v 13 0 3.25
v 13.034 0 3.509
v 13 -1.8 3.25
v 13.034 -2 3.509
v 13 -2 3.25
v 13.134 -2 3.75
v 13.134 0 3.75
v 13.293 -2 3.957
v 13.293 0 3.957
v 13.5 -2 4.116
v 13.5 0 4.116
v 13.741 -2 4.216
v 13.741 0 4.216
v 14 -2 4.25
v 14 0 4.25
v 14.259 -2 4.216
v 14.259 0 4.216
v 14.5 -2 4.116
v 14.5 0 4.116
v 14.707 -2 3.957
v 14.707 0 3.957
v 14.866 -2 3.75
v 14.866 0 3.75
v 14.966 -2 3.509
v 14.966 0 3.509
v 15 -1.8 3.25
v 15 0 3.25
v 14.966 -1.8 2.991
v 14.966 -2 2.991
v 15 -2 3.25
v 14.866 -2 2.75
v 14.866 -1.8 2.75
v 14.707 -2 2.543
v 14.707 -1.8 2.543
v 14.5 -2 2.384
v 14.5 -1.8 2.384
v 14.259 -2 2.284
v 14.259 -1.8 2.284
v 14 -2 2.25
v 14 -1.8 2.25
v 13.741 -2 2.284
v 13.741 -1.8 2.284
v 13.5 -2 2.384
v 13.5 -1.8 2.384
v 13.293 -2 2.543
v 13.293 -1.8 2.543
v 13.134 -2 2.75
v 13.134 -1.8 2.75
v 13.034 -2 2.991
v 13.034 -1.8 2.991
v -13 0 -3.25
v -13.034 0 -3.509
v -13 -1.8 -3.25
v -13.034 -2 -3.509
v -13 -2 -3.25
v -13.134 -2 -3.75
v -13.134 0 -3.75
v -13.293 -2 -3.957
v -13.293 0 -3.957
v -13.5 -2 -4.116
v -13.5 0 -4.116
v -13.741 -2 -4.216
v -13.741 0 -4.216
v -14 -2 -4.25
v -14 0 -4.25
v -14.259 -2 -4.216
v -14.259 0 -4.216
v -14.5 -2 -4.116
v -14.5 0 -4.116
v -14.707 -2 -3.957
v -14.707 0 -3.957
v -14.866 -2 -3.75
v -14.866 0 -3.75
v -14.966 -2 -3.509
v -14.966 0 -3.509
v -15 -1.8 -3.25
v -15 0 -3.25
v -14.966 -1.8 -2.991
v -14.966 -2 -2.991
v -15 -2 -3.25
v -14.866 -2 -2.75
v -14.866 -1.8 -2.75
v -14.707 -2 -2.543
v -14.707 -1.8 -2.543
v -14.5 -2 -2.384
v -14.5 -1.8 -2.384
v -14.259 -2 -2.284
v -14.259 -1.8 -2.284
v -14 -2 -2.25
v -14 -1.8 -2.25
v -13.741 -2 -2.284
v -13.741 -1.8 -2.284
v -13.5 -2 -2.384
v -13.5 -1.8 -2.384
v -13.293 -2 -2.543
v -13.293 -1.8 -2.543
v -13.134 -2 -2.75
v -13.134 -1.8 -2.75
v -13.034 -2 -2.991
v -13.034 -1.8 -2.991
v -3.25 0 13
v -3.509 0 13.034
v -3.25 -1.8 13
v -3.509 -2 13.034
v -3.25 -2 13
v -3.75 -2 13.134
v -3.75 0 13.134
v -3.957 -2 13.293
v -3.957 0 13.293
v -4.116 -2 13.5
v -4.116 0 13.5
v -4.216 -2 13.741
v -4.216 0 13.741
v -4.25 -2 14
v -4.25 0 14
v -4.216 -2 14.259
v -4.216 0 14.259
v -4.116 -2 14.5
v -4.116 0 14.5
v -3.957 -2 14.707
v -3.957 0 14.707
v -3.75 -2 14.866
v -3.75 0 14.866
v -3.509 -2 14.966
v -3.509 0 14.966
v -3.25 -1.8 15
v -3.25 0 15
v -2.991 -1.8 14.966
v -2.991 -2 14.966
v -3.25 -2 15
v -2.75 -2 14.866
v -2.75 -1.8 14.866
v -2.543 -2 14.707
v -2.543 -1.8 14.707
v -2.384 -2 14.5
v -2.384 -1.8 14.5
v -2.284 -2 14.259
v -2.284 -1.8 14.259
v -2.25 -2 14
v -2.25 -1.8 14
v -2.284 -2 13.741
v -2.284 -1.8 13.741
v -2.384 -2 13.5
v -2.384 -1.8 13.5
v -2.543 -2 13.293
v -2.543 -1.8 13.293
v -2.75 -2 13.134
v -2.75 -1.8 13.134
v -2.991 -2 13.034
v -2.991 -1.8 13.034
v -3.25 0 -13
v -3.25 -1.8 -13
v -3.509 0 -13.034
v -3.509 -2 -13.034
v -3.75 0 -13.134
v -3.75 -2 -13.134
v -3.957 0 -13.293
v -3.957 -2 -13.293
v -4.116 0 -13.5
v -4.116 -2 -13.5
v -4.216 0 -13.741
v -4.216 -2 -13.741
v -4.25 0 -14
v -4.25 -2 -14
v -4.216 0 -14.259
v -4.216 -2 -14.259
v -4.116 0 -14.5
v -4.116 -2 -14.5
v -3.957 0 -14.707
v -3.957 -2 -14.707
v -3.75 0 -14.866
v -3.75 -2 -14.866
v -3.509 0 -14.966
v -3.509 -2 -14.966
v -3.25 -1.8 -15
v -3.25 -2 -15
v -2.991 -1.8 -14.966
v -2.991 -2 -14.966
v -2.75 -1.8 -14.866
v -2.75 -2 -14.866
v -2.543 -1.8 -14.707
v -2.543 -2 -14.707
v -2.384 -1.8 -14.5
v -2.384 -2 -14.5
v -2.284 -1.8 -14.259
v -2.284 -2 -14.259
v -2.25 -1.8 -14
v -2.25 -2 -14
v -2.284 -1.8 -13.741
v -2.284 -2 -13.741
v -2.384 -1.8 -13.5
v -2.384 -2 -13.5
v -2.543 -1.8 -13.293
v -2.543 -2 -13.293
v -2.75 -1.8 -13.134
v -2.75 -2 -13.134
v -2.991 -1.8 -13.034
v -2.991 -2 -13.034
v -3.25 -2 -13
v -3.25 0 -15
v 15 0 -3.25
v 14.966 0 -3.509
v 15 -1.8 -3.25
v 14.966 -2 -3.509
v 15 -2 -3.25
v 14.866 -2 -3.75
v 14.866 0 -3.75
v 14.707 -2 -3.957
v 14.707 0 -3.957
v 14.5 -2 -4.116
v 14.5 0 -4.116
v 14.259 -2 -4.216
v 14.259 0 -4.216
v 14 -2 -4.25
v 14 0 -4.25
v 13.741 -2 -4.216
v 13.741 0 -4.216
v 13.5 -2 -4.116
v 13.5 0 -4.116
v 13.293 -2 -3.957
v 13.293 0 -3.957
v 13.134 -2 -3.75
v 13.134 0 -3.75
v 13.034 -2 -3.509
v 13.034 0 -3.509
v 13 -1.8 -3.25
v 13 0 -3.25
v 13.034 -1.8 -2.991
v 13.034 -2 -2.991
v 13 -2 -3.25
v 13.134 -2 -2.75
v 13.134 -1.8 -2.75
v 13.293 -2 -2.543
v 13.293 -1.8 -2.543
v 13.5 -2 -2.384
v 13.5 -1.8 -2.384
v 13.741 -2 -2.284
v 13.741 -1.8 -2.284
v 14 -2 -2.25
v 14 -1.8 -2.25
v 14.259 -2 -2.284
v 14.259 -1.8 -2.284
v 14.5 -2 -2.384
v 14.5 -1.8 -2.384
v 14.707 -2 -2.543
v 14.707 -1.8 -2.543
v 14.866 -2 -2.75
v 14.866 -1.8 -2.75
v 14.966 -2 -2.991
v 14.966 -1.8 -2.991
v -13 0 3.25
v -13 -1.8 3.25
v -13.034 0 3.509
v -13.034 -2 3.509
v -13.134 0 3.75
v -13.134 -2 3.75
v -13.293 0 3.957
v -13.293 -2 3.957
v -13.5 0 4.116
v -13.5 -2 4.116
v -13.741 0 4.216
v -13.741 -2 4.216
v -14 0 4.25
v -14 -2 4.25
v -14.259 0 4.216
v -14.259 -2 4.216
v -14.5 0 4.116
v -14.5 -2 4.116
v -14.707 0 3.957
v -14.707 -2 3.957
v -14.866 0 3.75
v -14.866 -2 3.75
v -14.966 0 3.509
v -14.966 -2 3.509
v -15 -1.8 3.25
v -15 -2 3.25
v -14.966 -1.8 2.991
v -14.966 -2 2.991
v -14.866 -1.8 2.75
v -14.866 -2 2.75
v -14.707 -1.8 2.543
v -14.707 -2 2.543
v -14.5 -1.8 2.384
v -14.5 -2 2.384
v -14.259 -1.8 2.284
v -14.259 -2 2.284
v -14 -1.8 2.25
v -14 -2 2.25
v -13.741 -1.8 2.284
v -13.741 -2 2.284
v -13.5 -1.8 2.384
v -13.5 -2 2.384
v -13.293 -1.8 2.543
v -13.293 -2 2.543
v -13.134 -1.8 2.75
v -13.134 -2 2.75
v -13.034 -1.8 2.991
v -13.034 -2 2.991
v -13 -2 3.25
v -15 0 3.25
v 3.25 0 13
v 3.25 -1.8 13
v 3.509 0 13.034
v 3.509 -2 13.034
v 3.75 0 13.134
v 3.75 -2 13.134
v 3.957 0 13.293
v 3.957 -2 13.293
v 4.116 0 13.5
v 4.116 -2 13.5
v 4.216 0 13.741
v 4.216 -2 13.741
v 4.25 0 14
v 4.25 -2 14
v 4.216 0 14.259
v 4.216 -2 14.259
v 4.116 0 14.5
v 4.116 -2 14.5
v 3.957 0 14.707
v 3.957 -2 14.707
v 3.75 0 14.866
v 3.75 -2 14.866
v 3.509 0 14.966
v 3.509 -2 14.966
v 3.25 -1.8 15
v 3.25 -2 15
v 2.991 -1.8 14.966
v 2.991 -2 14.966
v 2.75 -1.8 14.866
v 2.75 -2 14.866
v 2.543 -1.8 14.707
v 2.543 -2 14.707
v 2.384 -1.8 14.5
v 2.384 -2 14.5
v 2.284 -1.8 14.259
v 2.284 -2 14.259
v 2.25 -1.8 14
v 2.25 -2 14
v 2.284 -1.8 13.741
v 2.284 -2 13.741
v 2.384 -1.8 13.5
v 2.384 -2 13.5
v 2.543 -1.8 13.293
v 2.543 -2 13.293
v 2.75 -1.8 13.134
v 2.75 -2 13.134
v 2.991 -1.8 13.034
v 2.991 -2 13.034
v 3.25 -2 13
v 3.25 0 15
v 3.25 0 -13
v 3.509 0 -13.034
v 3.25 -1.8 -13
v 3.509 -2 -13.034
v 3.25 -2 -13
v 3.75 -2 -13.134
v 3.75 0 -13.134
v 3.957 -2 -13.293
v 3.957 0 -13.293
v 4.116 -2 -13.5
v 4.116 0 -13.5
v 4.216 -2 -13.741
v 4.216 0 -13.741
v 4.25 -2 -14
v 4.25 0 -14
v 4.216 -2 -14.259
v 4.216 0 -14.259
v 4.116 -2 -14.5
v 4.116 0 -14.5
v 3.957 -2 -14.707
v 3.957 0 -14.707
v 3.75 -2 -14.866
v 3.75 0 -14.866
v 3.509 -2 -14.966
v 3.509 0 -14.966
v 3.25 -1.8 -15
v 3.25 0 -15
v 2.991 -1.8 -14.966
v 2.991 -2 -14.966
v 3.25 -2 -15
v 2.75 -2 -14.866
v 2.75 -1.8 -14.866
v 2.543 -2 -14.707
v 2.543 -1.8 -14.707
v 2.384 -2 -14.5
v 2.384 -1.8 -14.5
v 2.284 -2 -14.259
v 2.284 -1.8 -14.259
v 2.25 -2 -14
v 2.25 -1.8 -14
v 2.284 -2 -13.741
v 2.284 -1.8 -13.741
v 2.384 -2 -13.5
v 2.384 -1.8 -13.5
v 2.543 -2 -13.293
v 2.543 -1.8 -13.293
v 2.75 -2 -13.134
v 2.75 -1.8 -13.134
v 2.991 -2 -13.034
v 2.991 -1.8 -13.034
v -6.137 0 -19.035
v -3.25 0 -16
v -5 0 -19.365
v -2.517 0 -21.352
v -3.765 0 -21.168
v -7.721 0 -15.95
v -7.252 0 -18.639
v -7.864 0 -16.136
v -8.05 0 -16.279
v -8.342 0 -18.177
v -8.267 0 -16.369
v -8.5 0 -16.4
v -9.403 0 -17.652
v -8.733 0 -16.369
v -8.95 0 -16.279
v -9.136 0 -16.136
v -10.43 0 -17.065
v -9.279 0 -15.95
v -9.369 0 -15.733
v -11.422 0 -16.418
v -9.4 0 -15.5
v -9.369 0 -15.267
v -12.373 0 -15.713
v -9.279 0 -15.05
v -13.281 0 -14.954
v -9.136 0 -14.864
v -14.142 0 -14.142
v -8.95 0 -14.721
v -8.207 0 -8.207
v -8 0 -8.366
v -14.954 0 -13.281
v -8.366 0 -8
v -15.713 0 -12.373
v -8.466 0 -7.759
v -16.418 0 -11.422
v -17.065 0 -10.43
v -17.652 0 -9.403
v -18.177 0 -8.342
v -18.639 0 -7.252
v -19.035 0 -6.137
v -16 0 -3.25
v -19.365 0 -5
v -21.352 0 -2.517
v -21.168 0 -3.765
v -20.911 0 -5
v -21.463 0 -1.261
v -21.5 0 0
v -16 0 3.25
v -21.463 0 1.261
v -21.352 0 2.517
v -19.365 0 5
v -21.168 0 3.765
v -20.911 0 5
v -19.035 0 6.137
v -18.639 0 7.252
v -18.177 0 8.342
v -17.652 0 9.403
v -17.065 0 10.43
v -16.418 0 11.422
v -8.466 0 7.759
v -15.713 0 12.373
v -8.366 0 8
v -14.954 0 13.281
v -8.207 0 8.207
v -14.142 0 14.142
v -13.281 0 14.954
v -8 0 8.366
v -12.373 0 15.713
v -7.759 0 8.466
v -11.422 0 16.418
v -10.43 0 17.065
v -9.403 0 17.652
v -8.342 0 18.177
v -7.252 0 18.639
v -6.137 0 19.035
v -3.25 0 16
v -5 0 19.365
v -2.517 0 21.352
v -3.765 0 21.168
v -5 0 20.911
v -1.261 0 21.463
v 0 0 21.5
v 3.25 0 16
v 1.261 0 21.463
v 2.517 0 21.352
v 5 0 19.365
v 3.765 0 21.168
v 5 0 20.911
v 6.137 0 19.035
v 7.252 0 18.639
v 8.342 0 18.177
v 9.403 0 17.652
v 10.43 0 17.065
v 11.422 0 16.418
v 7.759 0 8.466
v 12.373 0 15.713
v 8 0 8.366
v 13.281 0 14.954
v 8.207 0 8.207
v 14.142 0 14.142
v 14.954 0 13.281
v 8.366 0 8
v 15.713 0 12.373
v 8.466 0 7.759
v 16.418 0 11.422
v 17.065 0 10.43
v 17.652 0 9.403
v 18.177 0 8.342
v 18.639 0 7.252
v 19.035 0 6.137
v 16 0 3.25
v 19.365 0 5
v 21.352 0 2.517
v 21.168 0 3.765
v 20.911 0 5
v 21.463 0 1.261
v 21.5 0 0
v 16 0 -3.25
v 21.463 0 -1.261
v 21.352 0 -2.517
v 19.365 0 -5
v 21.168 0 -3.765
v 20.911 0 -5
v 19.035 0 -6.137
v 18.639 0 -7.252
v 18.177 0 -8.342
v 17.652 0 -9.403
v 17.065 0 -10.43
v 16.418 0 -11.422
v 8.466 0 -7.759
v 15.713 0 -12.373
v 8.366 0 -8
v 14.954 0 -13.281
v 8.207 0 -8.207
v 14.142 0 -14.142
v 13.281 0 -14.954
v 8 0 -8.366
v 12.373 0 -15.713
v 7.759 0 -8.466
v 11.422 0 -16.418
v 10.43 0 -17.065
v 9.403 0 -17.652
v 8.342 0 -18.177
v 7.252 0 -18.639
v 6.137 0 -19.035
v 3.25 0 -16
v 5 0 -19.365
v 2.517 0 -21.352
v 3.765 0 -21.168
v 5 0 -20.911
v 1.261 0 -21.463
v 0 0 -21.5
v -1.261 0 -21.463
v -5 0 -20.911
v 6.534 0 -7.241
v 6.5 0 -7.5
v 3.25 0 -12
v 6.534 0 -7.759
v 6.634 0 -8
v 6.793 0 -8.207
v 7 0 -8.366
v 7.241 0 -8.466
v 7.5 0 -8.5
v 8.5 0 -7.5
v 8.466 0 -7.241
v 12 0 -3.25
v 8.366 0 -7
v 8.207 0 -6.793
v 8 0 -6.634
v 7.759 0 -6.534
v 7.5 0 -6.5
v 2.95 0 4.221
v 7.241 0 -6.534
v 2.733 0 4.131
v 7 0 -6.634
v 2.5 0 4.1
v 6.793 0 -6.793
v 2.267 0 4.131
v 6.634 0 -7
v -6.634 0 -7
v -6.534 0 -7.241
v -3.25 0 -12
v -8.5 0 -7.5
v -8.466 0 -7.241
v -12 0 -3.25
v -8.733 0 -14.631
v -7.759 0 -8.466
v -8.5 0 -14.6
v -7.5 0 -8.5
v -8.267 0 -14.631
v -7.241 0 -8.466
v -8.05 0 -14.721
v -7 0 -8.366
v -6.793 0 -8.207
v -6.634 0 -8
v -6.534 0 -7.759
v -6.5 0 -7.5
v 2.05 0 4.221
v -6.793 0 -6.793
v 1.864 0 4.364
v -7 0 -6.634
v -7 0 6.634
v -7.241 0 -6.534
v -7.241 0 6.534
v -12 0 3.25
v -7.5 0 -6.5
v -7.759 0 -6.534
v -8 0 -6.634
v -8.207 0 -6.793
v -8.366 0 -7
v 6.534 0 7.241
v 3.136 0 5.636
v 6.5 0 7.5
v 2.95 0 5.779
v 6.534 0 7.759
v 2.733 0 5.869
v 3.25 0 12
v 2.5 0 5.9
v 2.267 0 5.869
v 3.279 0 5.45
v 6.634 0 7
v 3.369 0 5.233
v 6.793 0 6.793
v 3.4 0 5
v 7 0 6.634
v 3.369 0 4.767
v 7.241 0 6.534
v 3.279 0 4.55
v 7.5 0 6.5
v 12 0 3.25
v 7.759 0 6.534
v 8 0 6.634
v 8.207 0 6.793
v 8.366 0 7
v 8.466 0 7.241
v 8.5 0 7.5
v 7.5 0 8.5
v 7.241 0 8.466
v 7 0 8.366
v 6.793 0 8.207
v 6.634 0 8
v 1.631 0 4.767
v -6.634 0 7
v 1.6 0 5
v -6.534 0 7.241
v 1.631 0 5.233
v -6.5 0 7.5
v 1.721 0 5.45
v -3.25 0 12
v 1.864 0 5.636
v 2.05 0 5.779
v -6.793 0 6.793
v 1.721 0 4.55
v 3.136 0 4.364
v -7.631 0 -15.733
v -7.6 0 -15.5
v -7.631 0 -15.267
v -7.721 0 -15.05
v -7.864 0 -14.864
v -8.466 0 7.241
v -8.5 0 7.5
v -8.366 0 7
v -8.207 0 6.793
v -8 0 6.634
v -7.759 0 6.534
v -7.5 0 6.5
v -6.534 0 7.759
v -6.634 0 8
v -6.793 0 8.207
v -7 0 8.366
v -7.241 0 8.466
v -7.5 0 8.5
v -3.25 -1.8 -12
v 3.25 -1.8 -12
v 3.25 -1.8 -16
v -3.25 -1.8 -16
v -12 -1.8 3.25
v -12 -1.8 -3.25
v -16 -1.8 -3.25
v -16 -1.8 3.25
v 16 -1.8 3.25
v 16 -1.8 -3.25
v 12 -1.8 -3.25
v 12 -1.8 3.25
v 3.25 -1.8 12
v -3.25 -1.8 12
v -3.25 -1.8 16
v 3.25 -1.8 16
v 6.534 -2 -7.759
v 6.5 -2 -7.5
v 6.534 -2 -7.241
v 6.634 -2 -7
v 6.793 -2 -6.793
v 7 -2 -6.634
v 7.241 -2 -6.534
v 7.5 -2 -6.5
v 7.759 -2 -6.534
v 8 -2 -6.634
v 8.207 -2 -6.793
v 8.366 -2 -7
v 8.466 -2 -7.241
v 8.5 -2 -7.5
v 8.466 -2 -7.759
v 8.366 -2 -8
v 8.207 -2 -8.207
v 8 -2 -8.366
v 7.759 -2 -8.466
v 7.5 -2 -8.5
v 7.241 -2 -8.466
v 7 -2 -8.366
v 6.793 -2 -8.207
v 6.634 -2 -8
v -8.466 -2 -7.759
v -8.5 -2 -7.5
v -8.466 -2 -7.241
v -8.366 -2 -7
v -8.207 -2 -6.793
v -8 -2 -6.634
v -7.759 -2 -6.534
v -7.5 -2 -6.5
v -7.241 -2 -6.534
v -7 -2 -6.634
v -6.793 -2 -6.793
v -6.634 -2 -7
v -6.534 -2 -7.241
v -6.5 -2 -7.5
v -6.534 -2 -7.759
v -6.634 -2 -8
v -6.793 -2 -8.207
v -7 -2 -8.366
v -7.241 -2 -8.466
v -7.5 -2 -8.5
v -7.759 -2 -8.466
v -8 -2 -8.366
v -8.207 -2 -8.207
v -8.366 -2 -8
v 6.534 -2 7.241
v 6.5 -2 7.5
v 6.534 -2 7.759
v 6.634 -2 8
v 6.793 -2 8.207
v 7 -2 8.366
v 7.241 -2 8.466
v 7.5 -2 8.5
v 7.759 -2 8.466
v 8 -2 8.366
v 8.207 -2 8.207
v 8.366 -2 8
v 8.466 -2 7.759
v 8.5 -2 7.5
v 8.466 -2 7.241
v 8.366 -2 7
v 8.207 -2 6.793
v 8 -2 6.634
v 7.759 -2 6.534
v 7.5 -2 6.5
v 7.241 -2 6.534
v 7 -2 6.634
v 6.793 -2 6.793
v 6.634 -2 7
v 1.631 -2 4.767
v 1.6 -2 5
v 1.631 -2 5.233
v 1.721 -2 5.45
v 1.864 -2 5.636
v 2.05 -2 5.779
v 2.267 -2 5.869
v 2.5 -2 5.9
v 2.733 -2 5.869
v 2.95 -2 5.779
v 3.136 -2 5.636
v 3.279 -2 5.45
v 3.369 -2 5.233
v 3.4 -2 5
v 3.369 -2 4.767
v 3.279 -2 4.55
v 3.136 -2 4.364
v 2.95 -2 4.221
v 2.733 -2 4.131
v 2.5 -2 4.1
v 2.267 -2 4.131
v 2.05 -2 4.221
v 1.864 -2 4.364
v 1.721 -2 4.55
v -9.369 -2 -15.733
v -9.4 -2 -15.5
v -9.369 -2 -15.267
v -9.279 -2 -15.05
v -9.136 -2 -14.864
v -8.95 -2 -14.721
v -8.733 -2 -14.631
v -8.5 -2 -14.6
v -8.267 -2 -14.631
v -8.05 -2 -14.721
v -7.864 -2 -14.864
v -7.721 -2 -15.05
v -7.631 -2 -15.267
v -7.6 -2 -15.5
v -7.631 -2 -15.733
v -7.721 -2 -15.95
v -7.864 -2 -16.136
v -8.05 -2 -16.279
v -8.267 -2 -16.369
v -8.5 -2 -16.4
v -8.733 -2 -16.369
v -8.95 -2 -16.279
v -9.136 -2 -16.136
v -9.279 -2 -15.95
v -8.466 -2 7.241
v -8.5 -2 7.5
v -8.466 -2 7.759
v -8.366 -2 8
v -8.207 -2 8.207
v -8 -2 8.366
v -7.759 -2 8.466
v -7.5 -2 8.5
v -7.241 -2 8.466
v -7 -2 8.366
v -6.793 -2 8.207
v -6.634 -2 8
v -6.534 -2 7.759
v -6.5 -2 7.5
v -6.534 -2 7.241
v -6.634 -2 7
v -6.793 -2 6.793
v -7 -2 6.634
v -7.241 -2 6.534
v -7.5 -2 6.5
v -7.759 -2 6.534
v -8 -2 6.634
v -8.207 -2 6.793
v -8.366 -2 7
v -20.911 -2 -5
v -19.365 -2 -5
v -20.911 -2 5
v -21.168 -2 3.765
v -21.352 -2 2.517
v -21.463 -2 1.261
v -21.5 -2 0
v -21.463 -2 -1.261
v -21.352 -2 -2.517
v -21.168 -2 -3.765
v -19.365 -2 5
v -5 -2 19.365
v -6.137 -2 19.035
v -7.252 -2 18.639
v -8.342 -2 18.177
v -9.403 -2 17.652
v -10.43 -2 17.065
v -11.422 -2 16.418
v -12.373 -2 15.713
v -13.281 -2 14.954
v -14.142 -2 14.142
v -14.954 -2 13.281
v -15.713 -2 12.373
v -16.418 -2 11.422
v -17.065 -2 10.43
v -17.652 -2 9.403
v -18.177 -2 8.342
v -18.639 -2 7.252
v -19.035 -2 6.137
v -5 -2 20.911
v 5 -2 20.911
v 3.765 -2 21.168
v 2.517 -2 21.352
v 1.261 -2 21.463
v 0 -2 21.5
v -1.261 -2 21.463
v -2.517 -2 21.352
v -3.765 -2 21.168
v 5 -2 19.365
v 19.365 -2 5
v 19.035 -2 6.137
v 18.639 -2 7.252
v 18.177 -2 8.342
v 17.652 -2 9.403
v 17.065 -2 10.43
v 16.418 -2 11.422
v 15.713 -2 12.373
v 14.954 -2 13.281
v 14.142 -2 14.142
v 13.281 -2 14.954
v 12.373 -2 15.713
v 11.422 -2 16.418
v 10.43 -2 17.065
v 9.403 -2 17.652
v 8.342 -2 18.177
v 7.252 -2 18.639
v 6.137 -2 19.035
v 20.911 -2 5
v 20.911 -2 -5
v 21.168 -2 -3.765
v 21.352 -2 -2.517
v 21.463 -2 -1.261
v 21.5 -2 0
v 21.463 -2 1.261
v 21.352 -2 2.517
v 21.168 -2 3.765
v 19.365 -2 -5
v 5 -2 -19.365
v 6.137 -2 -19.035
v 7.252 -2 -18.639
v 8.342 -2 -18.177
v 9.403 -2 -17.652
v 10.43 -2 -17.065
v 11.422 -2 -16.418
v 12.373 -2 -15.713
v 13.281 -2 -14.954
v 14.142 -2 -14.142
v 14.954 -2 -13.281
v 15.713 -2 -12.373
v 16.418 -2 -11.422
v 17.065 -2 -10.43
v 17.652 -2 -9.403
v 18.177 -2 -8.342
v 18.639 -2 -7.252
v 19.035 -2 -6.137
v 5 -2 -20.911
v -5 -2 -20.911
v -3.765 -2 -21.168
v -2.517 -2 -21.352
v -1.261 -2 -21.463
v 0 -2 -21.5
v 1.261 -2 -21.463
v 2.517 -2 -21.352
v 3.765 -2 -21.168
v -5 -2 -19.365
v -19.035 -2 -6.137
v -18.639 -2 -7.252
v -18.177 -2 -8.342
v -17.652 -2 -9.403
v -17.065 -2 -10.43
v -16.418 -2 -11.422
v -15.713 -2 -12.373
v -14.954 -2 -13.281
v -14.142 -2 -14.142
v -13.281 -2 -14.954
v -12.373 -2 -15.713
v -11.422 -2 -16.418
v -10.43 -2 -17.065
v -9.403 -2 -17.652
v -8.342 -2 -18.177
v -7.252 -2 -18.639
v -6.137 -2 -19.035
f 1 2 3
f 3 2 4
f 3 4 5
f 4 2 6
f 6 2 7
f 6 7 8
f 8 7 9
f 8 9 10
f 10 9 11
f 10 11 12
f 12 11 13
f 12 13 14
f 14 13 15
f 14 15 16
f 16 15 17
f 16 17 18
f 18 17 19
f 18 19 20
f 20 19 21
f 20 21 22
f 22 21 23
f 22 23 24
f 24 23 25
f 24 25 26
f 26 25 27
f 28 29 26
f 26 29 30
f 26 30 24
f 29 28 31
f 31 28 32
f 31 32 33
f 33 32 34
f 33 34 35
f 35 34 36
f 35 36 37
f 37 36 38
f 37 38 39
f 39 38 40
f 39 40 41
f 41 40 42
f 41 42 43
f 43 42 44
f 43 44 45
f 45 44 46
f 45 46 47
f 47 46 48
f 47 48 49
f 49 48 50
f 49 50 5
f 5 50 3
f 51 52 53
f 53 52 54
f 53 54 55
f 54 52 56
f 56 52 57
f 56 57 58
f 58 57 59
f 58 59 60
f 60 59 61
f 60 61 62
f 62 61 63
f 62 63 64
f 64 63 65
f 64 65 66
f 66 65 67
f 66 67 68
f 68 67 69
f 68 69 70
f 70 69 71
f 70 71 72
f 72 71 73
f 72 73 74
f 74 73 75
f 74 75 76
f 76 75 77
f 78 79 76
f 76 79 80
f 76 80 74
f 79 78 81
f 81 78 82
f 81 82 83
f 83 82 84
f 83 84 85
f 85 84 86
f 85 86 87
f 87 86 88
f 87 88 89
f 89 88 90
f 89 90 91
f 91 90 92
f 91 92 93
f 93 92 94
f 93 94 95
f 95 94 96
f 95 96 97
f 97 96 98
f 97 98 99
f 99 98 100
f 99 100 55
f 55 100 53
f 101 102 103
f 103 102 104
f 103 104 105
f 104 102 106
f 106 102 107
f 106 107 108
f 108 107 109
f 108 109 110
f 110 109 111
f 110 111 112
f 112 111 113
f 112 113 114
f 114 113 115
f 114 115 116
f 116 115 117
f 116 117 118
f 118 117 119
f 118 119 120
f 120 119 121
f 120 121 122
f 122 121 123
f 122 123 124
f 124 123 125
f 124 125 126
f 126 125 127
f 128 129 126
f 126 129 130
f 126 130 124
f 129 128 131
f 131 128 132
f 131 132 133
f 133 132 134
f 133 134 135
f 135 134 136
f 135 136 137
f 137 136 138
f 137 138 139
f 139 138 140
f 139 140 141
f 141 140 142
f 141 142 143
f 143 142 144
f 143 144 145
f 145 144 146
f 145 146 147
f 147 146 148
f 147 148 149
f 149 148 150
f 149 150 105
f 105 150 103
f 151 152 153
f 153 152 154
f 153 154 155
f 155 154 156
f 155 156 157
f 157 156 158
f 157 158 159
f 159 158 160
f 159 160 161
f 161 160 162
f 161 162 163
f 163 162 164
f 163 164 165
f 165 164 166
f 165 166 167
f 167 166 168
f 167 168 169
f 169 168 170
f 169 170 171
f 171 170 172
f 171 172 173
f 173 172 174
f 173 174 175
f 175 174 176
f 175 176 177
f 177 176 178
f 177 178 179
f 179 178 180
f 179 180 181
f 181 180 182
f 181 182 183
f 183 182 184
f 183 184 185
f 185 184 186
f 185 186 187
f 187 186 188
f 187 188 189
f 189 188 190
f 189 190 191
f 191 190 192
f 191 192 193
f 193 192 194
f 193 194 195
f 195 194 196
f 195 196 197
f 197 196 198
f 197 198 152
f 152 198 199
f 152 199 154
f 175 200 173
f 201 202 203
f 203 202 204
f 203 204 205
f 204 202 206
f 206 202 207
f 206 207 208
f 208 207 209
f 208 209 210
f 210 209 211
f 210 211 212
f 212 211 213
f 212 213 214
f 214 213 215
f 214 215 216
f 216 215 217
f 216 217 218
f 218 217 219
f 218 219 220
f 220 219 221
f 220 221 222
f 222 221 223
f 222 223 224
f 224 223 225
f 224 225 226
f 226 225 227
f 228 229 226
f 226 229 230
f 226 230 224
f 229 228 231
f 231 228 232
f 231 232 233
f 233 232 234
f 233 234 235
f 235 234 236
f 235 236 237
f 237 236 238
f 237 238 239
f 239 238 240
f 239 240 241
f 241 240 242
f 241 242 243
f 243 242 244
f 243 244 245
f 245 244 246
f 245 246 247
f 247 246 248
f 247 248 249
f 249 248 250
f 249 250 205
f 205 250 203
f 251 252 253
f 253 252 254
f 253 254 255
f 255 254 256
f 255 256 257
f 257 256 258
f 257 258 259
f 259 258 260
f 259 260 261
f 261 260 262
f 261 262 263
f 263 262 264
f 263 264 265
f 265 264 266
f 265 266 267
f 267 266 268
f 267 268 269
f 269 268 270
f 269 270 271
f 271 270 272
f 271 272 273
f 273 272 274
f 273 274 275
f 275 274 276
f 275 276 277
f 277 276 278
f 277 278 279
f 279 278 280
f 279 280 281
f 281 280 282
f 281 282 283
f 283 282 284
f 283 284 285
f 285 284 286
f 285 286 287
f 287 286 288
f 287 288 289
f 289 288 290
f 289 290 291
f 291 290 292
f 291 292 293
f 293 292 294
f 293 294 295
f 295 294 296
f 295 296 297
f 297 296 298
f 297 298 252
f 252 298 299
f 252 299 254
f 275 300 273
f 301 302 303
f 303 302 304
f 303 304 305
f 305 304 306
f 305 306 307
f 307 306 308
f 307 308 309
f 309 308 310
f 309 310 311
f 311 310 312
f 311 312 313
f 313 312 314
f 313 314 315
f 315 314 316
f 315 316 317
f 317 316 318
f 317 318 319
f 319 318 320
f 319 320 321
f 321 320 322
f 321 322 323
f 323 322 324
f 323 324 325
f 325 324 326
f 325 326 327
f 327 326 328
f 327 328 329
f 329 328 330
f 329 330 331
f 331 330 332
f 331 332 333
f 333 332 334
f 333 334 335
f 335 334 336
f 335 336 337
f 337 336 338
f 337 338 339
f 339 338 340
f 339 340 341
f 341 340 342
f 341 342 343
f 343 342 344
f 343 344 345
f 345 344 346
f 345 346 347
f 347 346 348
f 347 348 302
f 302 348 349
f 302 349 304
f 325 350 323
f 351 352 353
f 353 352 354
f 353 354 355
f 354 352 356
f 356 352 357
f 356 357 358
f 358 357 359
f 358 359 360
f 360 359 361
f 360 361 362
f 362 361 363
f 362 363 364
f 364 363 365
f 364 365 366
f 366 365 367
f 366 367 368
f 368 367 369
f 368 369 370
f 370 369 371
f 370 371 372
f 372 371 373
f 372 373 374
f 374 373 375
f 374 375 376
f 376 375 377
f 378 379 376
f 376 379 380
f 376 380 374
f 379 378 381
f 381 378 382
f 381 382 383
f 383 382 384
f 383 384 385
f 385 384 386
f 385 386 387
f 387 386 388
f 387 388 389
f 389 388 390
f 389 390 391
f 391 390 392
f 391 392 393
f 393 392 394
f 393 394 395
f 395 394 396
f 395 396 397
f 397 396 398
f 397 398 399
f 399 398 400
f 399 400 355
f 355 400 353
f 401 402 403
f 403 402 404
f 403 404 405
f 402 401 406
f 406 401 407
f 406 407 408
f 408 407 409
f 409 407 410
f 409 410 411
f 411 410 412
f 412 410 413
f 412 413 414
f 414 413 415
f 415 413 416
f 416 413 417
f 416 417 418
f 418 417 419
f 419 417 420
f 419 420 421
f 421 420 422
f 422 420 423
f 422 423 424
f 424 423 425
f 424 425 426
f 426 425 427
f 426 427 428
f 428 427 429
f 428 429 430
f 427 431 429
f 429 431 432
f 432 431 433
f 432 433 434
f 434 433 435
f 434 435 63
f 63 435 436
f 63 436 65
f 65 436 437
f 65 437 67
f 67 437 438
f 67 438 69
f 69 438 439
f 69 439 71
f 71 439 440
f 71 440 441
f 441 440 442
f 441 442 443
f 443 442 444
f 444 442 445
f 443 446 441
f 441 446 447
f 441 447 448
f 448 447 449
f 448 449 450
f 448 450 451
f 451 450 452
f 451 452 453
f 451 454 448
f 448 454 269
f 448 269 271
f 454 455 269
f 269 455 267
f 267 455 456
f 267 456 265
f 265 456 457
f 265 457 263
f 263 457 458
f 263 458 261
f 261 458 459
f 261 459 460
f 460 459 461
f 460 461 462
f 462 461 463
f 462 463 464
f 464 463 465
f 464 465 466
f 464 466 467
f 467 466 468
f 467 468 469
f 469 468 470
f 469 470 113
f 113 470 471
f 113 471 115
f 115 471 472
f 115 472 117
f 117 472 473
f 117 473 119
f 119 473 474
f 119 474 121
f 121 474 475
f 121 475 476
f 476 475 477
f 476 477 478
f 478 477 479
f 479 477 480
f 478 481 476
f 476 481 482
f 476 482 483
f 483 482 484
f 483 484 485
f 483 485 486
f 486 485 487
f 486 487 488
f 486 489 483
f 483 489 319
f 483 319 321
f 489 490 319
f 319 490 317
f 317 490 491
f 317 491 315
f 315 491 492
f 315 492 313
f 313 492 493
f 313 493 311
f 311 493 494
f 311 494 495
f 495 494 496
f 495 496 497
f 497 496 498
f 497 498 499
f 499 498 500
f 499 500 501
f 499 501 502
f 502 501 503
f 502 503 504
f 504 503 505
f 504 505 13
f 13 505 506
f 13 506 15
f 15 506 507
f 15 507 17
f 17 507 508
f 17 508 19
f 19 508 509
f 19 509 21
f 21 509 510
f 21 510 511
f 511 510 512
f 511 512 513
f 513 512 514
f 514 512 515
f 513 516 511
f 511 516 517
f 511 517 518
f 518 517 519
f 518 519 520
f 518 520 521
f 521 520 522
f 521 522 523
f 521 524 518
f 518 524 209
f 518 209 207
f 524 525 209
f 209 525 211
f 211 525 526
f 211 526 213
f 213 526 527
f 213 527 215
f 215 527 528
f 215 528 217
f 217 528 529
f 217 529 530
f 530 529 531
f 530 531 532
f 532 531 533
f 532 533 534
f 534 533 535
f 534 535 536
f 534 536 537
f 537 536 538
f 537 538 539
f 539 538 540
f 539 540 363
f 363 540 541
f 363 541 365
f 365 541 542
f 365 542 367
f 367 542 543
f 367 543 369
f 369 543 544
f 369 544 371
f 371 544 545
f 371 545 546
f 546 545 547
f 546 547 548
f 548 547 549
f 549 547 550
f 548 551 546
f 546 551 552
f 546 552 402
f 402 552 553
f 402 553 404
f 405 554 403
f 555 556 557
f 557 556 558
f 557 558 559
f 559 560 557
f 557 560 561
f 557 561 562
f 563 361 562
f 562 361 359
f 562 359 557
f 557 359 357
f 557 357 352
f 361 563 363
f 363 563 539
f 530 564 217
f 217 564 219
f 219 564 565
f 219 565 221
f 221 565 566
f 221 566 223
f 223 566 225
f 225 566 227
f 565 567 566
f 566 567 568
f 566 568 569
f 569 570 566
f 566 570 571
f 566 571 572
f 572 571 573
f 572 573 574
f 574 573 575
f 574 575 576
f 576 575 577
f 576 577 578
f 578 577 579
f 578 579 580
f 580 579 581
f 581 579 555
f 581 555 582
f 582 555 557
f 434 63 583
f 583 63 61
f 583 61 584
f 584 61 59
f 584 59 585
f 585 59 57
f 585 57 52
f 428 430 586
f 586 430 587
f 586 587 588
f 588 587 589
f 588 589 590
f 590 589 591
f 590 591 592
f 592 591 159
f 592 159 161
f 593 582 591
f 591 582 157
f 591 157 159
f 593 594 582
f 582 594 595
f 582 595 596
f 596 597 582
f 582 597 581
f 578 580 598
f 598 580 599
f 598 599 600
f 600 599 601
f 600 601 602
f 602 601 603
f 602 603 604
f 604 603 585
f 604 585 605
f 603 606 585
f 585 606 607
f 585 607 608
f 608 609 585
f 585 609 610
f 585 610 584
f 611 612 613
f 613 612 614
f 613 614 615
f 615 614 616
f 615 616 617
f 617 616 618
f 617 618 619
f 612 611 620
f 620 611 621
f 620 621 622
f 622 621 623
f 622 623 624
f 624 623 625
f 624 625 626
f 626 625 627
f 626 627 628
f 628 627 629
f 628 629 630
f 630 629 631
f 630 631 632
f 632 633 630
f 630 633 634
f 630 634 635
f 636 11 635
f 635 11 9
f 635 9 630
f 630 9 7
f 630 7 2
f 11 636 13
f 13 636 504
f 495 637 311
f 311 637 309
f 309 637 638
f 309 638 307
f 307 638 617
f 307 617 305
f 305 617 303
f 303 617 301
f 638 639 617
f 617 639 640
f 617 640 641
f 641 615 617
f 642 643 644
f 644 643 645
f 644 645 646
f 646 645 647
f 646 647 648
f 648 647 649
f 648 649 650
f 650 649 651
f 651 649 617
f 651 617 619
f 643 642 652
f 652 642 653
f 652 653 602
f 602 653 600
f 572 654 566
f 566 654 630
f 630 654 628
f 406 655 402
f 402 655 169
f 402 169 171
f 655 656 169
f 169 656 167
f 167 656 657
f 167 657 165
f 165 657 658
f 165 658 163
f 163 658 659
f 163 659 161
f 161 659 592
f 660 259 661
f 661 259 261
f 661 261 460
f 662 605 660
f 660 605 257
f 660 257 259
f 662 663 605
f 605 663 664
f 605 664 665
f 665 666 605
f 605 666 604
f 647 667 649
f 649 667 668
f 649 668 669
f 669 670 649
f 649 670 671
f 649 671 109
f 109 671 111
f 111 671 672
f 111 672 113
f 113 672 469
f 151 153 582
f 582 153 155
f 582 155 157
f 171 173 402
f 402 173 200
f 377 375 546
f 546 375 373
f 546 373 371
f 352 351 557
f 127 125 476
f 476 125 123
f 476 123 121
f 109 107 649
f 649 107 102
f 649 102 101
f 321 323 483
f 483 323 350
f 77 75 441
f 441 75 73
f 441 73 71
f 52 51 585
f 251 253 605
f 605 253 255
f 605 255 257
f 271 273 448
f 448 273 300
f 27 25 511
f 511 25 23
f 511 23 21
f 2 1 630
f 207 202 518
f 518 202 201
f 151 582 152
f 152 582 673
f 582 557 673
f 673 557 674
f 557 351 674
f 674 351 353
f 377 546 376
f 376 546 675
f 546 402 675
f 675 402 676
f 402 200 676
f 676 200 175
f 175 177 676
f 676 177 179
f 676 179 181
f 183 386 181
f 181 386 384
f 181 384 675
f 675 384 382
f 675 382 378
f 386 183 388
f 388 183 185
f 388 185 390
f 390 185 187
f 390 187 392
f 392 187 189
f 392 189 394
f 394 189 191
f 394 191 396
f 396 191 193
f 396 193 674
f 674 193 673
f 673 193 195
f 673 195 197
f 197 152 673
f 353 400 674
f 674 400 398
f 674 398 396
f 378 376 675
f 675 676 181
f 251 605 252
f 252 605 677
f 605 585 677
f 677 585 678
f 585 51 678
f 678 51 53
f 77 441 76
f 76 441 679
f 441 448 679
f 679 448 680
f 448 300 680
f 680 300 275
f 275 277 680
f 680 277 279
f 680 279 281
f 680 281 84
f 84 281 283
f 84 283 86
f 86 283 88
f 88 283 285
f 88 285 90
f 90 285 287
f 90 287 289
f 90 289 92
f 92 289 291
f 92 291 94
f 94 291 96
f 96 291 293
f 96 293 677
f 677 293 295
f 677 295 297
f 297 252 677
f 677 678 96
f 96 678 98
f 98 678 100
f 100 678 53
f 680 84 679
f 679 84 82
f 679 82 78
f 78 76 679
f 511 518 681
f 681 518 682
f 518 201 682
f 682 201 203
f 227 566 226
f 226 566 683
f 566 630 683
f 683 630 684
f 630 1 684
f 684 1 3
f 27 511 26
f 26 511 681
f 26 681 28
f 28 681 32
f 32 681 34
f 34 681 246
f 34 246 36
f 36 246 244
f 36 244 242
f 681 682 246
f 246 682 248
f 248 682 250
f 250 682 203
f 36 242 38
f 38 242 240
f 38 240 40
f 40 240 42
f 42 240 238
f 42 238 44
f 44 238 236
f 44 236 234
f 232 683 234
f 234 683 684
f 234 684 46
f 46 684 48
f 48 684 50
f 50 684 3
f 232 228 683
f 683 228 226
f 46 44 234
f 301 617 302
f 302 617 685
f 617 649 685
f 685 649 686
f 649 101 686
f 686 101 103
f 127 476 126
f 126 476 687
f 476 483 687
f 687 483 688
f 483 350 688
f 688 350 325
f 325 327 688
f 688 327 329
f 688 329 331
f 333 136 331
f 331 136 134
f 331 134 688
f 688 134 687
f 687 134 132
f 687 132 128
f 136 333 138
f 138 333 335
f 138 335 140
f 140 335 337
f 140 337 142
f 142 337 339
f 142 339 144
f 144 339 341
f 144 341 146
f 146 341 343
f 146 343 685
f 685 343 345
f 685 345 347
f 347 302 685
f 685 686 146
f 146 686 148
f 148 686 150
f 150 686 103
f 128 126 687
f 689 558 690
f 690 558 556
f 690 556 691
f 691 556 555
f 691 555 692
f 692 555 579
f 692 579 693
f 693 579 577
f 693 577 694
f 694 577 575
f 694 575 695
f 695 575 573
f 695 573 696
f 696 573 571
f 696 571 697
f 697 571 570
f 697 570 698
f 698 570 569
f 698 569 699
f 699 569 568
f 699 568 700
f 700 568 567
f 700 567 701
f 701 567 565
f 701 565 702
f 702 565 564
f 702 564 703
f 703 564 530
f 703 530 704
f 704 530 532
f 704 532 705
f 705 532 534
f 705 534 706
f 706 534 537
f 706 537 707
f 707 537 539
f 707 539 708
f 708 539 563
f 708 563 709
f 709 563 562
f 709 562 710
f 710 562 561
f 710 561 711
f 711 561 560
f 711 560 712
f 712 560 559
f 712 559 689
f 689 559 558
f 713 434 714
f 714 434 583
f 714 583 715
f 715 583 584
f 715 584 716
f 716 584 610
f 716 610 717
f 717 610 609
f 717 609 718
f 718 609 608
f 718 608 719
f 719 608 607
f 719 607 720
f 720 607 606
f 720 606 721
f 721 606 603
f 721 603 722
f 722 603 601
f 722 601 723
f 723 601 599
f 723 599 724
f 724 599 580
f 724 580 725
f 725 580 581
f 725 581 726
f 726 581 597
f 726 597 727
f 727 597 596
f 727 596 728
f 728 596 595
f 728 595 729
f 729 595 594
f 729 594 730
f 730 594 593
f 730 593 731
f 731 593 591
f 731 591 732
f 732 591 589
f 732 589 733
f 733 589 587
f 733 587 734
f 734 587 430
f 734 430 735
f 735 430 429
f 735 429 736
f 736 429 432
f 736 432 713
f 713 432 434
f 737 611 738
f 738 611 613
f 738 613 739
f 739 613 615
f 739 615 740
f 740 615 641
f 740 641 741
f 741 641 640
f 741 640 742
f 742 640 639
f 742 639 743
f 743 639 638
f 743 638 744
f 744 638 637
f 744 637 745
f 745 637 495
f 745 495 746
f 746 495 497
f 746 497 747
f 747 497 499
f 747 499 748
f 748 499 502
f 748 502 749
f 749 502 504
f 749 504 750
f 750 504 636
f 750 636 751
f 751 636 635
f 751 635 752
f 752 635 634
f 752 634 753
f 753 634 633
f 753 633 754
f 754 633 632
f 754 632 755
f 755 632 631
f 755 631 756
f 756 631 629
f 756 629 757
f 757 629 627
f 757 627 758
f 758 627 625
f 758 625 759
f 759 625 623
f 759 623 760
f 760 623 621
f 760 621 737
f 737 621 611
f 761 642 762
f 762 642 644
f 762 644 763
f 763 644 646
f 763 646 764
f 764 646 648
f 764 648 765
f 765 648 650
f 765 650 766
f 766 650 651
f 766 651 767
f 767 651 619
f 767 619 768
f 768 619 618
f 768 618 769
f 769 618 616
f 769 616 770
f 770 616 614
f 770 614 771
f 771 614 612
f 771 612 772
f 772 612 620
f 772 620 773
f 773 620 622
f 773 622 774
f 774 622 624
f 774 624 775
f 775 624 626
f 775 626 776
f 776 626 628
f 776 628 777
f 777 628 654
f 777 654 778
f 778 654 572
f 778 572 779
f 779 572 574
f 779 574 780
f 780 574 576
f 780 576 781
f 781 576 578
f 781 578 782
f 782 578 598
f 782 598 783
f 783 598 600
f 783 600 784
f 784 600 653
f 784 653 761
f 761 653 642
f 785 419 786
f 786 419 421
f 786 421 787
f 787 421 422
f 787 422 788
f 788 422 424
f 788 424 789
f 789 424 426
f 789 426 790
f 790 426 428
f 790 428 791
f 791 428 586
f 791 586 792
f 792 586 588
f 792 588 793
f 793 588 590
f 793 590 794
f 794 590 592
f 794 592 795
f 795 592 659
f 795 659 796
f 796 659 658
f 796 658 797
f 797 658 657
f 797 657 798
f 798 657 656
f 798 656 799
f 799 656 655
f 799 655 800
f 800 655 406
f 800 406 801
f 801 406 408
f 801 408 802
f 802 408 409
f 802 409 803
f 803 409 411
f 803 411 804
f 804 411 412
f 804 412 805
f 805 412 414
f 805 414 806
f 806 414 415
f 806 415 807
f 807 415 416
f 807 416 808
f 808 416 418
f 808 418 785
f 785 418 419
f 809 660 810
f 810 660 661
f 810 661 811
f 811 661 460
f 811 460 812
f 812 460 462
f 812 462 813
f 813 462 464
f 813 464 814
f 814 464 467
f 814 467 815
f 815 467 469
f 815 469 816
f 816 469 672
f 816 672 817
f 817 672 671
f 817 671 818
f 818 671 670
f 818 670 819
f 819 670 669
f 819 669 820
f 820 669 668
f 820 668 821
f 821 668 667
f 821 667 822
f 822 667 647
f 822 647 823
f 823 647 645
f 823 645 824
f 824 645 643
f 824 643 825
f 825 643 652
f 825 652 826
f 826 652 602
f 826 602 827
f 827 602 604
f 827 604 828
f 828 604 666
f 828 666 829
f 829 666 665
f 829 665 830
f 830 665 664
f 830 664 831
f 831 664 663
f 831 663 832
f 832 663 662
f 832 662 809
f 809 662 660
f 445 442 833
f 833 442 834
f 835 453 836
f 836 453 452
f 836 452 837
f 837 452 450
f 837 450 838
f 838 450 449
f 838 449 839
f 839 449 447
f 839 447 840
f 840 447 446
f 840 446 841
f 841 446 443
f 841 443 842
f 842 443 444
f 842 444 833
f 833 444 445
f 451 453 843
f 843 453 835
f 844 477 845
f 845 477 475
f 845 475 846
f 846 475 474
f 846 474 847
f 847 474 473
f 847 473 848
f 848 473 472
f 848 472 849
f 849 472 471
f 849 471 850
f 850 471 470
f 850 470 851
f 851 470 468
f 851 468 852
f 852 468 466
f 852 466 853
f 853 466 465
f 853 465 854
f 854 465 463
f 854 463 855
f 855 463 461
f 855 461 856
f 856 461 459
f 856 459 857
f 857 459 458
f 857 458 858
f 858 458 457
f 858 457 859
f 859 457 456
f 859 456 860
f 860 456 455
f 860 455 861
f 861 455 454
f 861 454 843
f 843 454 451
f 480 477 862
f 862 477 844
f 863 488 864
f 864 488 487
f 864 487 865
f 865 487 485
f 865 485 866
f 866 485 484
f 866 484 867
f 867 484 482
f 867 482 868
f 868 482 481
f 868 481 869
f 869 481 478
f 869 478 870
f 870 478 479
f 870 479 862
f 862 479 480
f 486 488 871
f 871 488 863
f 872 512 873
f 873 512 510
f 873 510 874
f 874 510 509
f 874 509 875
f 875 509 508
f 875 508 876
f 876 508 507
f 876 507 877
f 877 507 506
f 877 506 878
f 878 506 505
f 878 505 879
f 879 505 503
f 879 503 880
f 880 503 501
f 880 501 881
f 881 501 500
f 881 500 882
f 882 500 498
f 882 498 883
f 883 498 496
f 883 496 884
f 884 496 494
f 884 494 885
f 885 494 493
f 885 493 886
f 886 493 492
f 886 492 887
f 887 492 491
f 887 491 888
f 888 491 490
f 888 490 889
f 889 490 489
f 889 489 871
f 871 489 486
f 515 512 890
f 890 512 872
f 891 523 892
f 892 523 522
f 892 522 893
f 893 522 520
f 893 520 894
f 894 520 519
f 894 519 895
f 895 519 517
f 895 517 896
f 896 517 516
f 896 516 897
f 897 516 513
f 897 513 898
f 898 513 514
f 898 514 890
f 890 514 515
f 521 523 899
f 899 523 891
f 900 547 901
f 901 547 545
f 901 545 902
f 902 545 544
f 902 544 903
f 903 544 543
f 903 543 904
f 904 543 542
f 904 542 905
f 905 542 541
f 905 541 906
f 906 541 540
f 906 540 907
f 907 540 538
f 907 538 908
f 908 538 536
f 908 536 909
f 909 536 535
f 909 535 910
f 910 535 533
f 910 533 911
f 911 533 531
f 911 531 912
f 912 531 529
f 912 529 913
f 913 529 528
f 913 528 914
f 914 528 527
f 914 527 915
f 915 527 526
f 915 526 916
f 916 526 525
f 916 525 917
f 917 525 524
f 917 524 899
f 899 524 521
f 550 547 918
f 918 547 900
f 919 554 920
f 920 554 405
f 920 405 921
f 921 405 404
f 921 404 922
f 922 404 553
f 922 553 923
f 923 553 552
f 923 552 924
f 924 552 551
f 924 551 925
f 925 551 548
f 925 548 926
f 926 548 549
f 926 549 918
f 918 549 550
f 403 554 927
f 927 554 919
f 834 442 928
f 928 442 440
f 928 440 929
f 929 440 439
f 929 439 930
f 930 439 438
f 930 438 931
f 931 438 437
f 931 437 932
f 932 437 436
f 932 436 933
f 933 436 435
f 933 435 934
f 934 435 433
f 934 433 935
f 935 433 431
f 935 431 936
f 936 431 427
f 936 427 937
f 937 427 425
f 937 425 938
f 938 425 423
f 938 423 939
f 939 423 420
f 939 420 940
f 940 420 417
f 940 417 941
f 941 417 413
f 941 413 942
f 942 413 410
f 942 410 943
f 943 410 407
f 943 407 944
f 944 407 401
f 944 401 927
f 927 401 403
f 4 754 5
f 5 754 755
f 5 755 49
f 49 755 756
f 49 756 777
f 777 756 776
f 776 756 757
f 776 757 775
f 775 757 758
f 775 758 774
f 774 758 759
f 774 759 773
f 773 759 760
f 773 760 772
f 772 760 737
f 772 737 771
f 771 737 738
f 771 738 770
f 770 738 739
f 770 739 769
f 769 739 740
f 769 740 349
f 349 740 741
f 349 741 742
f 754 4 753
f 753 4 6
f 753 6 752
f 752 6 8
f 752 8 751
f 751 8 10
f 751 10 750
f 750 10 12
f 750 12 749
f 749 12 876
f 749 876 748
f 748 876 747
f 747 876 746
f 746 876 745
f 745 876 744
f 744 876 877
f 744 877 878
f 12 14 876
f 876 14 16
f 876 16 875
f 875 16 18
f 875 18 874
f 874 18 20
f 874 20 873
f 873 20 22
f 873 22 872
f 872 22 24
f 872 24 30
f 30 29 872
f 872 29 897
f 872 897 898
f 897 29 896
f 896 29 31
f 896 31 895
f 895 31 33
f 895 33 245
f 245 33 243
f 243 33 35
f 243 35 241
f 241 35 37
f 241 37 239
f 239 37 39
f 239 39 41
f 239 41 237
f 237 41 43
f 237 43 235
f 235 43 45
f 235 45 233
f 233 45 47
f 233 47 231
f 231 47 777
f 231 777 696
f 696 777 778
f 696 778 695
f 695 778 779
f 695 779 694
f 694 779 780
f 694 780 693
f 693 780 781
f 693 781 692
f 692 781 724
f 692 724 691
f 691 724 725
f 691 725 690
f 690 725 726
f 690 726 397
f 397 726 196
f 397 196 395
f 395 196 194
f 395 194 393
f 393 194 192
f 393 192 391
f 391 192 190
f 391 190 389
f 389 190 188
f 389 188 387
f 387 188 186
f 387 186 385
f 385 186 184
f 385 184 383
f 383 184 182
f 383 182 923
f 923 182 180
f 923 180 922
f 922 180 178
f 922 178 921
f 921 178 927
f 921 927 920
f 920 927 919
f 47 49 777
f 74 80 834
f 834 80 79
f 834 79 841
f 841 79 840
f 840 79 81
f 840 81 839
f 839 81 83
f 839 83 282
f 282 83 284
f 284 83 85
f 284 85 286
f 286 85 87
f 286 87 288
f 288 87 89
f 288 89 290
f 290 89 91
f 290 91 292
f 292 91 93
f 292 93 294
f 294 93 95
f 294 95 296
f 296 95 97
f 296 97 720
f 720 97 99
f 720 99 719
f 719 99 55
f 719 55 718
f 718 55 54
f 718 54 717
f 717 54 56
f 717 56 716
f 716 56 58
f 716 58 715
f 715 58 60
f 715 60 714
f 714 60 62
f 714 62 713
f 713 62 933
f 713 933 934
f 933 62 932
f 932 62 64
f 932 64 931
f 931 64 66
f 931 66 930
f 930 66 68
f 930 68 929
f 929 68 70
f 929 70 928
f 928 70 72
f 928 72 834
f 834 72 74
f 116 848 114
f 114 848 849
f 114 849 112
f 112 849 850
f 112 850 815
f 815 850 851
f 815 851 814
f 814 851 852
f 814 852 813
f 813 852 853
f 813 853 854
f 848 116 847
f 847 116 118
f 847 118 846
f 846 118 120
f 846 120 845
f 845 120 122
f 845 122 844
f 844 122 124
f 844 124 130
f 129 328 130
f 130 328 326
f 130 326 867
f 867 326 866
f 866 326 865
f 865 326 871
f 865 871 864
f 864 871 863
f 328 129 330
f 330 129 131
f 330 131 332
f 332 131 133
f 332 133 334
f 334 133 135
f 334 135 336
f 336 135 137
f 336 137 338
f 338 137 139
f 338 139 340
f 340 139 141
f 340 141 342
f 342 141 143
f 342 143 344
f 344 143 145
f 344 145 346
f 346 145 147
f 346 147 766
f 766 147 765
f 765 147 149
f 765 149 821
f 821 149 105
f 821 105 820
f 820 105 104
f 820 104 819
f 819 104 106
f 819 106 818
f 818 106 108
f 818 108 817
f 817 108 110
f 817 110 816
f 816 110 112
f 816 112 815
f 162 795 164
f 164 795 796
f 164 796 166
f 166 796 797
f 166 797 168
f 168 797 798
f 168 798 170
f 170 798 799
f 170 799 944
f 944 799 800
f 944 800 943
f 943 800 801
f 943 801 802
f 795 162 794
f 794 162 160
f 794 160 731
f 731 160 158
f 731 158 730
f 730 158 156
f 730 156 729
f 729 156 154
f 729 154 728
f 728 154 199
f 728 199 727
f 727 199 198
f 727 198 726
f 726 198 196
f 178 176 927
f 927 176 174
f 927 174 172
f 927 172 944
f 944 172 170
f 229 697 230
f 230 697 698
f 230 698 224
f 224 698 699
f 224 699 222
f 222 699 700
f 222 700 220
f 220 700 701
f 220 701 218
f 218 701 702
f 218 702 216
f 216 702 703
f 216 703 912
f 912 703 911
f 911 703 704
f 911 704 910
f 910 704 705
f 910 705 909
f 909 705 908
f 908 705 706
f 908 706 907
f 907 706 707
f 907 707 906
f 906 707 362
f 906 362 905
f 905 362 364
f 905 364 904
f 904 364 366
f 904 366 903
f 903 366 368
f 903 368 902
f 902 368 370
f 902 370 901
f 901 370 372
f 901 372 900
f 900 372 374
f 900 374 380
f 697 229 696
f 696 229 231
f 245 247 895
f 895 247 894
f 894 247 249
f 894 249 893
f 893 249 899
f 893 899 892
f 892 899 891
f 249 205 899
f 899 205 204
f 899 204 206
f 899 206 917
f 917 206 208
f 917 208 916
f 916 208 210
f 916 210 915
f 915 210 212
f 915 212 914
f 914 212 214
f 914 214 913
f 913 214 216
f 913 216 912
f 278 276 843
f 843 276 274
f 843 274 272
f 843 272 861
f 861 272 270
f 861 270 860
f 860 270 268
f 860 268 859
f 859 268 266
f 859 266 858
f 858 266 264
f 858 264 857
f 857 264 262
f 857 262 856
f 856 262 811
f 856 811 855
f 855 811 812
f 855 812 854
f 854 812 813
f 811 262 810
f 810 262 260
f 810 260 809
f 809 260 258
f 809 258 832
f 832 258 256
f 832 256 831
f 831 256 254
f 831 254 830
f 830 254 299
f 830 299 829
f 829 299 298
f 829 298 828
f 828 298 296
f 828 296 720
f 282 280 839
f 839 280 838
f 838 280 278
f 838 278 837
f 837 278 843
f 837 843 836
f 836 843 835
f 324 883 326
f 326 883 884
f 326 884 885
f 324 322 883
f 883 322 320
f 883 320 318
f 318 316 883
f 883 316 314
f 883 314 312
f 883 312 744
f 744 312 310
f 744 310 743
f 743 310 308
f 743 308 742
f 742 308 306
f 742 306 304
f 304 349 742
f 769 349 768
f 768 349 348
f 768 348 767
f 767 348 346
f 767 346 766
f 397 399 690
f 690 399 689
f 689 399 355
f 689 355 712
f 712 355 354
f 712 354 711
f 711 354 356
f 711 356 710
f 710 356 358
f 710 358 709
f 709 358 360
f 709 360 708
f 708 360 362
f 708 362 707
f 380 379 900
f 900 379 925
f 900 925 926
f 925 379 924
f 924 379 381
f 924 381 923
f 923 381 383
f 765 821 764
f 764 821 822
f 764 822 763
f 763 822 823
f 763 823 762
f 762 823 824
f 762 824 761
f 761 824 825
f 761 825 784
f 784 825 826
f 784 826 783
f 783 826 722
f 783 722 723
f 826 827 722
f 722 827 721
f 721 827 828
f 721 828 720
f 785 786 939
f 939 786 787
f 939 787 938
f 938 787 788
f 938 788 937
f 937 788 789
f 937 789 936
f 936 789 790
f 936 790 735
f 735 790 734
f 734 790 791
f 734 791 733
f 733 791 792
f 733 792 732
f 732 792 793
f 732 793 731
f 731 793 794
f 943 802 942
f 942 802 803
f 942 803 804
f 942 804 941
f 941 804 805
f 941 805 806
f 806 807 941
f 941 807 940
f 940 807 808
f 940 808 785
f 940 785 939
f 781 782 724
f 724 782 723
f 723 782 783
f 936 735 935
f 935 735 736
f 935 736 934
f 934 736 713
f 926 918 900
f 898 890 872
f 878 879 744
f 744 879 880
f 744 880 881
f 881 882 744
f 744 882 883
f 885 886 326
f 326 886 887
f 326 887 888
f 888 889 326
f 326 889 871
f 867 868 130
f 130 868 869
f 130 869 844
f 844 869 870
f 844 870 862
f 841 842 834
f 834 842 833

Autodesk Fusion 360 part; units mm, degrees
sketch "Plate" plane through (0, 0, 0) normal (0, 1, 0) x (1, 0, 0)
  circle A0 centre (0, 0) radius 21.5
  circle A1 centre (0, 0) radius 20
  line L0 (5, -23) -> (-5, -23)
  line L1 (-5, -23) -> (-5, 23)
  line L2 (-5, 23) -> (5, 23)
  line L3 (5, 23) -> (5, -23)
  line L4 (23, -5) -> (-23, -5)
  line L5 (-23, -5) -> (-23, 5)
  line L6 (-23, 5) -> (23, 5)
  line L7 (23, 5) -> (23, -5)
  line L8 (7.5, -7.5) -> (-7.5, -7.5) construction
  line L9 (-7.5, -7.5) -> (-7.5, 7.5) construction
  line L10 (-7.5, 7.5) -> (7.5, 7.5) construction
  line L11 (7.5, 7.5) -> (7.5, -7.5) construction
  line L12 (7.5, -7.5) -> (-7.5, 7.5) construction
  line L13 (-7.5, -7.5) -> (7.5, 7.5) construction
  circle A2 centre (7.5, 7.5) radius 1
  circle A3 centre (7.5, -7.5) radius 1
  circle A4 centre (-7.5, -7.5) radius 1
  circle A5 centre (-7.5, 7.5) radius 1
  circle A6 centre (2.5, -5) radius 0.9
  circle A7 centre (-8.5, 15.5) radius 0.9
  dimension "d1" = 43
  dimension "d2" = 40
  dimension "d3" = 10
  dimension "d4" = 46
  dimension "d5" = 10
  dimension "d6" = 15
  dimension "d7" = 15
  dimension "d8" = 2
  dimension "d9" = 2
  dimension "d10" = 2
  dimension "d11" = 2
  dimension "d12" = 1.8
  dimension "d13" = 1.8
extrude "Extrude1" add sketch "Plate" against normal blind 2 contours A0 A1 L4 L6 | A0 A1 L1 L3 | A1 L3 L6 | A1 L3 L4 L6 | A0 A1 L1 L3 | A1 L3 L4 | A1 L1 L3 L6 | L1 L3 L4 L6 A6 | A1 L1 L3 L4 A6 | A0 A1 L4 L6 | A1 L1 L6 | A1 L1 L4 L6 | A1 L1 L4
sketch "Buttons" plane through (0, 0, 0) normal (0, 1, 0) x (1, 0, 0)
  line L0 (16, -3.25) -> (12, -3.25)
  line L1 (12, -3.25) -> (12, 3.25)
  line L2 (12, 3.25) -> (16, 3.25)
  line L3 (16, 3.25) -> (16, -3.25)
  line L4 (16, -3.25) -> (12, 3.25) construction
  line L5 (12, -3.25) -> (16, 3.25) construction
  circle A0 centre (14, 3.25) radius 1
  circle A1 centre (14, -3.25) radius 1
  circle A2 centre (-3.25, 14) radius 1
  circle A3 centre (3.25, 14) radius 1
  line L6 (3.25, 12) -> (-3.25, 12)
  line L7 (-3.25, 12) -> (-3.25, 16)
  line L8 (3.25, 16) -> (3.25, 12)
  line L9 (-3.25, 16) -> (3.25, 16)
  circle A4 centre (-14, -3.25) radius 1
  circle A5 centre (-14, 3.25) radius 1
  line L10 (-12, 3.25) -> (-12, -3.25)
  line L11 (-12, -3.25) -> (-16, -3.25)
  line L12 (-16, 3.25) -> (-12, 3.25)
  line L13 (-16, -3.25) -> (-16, 3.25)
  circle A6 centre (3.25, -14) radius 1
  circle A7 centre (-3.25, -14) radius 1
  line L14 (-3.25, -12) -> (3.25, -12)
  line L15 (3.25, -12) -> (3.25, -16)
  line L16 (-3.25, -16) -> (-3.25, -12)
  line L17 (3.25, -16) -> (-3.25, -16)
  point P0 (14, 0)
  dimension "d16" = 4
  dimension "d17" = 6.5
  dimension "d18" = 2
  dimension "d19" = 2
  dimension "d21" = 360
extrude "Extrude2" cut sketch "Buttons" against normal blind 1.8 contours L0 L1 L2 L3 A0 A1 | A2 A3 L6 L7 L8 L9 | A4 A5 L10 L11 L12 L13 | A6 A7 L14 L15 L16 L17
extrude "Extrude3" cut sketch "Buttons" against normal blind 3 contours L0 A1 | L0 A1 | L2 A0 | L2 A0 | A2 L7 | A2 L7 | A3 L8 | A3 L8 | A4 L11 | A4 L11 | A5 L12 | A5 L12 | A6 L15 | A6 L15 | A7 L16 | A7 L16
